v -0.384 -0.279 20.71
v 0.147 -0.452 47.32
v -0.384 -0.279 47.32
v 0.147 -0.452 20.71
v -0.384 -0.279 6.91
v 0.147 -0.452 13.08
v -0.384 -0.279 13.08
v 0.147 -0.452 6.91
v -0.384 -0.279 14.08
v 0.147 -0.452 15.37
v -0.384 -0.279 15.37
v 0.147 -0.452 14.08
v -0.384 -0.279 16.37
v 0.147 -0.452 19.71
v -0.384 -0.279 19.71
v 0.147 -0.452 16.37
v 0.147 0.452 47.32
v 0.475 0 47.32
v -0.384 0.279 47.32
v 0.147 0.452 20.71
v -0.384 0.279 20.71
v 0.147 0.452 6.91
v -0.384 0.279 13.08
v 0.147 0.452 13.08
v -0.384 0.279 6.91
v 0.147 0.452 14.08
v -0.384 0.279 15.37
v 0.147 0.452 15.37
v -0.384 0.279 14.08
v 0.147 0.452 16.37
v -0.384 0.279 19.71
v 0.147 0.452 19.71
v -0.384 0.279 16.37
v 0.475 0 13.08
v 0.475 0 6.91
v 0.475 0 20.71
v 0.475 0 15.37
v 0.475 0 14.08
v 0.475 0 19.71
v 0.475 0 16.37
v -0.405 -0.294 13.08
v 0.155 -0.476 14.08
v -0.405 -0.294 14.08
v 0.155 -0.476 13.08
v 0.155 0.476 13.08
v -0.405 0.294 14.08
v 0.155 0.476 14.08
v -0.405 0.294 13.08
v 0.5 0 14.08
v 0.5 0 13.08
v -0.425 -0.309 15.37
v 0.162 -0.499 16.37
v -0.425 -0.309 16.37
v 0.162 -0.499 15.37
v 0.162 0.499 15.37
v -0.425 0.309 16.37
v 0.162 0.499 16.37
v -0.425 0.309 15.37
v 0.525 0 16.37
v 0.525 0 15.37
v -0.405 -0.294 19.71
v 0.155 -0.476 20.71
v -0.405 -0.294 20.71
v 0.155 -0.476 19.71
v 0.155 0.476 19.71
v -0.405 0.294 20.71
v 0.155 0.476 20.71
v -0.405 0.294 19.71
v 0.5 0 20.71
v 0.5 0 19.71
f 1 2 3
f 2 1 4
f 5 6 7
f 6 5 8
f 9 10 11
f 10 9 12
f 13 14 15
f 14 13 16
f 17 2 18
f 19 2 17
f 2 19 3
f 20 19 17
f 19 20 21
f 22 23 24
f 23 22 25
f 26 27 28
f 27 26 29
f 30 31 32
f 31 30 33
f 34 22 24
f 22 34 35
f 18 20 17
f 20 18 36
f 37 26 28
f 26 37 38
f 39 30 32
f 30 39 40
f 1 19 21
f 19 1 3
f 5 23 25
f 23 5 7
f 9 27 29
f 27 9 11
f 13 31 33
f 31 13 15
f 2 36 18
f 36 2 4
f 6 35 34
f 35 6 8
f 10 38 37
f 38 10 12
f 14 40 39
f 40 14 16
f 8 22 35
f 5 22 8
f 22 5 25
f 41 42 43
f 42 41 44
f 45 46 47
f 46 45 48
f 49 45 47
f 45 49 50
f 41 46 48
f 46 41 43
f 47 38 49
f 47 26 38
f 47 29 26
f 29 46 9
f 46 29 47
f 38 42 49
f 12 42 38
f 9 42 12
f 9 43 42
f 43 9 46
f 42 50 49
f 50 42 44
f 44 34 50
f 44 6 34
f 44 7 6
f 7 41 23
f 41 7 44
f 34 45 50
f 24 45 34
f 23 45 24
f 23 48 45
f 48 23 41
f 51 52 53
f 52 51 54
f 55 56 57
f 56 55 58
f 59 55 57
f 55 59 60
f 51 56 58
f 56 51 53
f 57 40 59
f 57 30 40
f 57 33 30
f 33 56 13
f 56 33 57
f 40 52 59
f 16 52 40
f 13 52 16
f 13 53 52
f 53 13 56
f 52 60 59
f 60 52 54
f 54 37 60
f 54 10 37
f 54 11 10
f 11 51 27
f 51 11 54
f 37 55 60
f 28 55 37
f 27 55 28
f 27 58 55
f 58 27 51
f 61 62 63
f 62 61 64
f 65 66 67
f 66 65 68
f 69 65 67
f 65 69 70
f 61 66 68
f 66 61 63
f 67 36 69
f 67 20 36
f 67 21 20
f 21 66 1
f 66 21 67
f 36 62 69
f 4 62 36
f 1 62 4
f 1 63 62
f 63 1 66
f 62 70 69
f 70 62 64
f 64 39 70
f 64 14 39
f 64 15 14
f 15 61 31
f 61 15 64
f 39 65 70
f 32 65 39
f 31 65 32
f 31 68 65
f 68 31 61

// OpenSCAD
module 050_SRB255P() {
    color("Gray")
    // QATech.com
    translate([0,0,43.18-36.27])cylinder(h=40.41,d=0.95,center=false);
    translate([0,0,8+5.08])cylinder(h=1,d=1.0,center=false);
    color("blue")
    translate([0,0,8+7.37])cylinder(h=1,d=1.05,center=false);
    translate([0,0,8+11.71])cylinder(h=1,d=1.0,center=false); 
}

/* Define the hole that needs to be cut for this socket */
module 050_SRB255P_pinhole() {
    d_top_ring = 1;  //  top ring diameter
    d_bottom_ring = 0.85;  //  lower ring diameter
    d_shaft = 0.68;  //  diameter of shaft
    rings_dz = 2;  //  separation between rings
    ring_top_dz = 1;  //  opening to top ring separation
    
    through_all = 1000;
    cylinder(h=through_all,d=d_shaft,center=true);
    translate([0,0,through_all/2-ring_top_dz])cylinder(h=through_all,d=d_top_ring,center=true);
    translate([0,0,through_all/2-(ring_top_dz+rings_dz)])cylinder(h=through_all,d=d_bottom_ring,center=true);
}

050_SRB255P();
